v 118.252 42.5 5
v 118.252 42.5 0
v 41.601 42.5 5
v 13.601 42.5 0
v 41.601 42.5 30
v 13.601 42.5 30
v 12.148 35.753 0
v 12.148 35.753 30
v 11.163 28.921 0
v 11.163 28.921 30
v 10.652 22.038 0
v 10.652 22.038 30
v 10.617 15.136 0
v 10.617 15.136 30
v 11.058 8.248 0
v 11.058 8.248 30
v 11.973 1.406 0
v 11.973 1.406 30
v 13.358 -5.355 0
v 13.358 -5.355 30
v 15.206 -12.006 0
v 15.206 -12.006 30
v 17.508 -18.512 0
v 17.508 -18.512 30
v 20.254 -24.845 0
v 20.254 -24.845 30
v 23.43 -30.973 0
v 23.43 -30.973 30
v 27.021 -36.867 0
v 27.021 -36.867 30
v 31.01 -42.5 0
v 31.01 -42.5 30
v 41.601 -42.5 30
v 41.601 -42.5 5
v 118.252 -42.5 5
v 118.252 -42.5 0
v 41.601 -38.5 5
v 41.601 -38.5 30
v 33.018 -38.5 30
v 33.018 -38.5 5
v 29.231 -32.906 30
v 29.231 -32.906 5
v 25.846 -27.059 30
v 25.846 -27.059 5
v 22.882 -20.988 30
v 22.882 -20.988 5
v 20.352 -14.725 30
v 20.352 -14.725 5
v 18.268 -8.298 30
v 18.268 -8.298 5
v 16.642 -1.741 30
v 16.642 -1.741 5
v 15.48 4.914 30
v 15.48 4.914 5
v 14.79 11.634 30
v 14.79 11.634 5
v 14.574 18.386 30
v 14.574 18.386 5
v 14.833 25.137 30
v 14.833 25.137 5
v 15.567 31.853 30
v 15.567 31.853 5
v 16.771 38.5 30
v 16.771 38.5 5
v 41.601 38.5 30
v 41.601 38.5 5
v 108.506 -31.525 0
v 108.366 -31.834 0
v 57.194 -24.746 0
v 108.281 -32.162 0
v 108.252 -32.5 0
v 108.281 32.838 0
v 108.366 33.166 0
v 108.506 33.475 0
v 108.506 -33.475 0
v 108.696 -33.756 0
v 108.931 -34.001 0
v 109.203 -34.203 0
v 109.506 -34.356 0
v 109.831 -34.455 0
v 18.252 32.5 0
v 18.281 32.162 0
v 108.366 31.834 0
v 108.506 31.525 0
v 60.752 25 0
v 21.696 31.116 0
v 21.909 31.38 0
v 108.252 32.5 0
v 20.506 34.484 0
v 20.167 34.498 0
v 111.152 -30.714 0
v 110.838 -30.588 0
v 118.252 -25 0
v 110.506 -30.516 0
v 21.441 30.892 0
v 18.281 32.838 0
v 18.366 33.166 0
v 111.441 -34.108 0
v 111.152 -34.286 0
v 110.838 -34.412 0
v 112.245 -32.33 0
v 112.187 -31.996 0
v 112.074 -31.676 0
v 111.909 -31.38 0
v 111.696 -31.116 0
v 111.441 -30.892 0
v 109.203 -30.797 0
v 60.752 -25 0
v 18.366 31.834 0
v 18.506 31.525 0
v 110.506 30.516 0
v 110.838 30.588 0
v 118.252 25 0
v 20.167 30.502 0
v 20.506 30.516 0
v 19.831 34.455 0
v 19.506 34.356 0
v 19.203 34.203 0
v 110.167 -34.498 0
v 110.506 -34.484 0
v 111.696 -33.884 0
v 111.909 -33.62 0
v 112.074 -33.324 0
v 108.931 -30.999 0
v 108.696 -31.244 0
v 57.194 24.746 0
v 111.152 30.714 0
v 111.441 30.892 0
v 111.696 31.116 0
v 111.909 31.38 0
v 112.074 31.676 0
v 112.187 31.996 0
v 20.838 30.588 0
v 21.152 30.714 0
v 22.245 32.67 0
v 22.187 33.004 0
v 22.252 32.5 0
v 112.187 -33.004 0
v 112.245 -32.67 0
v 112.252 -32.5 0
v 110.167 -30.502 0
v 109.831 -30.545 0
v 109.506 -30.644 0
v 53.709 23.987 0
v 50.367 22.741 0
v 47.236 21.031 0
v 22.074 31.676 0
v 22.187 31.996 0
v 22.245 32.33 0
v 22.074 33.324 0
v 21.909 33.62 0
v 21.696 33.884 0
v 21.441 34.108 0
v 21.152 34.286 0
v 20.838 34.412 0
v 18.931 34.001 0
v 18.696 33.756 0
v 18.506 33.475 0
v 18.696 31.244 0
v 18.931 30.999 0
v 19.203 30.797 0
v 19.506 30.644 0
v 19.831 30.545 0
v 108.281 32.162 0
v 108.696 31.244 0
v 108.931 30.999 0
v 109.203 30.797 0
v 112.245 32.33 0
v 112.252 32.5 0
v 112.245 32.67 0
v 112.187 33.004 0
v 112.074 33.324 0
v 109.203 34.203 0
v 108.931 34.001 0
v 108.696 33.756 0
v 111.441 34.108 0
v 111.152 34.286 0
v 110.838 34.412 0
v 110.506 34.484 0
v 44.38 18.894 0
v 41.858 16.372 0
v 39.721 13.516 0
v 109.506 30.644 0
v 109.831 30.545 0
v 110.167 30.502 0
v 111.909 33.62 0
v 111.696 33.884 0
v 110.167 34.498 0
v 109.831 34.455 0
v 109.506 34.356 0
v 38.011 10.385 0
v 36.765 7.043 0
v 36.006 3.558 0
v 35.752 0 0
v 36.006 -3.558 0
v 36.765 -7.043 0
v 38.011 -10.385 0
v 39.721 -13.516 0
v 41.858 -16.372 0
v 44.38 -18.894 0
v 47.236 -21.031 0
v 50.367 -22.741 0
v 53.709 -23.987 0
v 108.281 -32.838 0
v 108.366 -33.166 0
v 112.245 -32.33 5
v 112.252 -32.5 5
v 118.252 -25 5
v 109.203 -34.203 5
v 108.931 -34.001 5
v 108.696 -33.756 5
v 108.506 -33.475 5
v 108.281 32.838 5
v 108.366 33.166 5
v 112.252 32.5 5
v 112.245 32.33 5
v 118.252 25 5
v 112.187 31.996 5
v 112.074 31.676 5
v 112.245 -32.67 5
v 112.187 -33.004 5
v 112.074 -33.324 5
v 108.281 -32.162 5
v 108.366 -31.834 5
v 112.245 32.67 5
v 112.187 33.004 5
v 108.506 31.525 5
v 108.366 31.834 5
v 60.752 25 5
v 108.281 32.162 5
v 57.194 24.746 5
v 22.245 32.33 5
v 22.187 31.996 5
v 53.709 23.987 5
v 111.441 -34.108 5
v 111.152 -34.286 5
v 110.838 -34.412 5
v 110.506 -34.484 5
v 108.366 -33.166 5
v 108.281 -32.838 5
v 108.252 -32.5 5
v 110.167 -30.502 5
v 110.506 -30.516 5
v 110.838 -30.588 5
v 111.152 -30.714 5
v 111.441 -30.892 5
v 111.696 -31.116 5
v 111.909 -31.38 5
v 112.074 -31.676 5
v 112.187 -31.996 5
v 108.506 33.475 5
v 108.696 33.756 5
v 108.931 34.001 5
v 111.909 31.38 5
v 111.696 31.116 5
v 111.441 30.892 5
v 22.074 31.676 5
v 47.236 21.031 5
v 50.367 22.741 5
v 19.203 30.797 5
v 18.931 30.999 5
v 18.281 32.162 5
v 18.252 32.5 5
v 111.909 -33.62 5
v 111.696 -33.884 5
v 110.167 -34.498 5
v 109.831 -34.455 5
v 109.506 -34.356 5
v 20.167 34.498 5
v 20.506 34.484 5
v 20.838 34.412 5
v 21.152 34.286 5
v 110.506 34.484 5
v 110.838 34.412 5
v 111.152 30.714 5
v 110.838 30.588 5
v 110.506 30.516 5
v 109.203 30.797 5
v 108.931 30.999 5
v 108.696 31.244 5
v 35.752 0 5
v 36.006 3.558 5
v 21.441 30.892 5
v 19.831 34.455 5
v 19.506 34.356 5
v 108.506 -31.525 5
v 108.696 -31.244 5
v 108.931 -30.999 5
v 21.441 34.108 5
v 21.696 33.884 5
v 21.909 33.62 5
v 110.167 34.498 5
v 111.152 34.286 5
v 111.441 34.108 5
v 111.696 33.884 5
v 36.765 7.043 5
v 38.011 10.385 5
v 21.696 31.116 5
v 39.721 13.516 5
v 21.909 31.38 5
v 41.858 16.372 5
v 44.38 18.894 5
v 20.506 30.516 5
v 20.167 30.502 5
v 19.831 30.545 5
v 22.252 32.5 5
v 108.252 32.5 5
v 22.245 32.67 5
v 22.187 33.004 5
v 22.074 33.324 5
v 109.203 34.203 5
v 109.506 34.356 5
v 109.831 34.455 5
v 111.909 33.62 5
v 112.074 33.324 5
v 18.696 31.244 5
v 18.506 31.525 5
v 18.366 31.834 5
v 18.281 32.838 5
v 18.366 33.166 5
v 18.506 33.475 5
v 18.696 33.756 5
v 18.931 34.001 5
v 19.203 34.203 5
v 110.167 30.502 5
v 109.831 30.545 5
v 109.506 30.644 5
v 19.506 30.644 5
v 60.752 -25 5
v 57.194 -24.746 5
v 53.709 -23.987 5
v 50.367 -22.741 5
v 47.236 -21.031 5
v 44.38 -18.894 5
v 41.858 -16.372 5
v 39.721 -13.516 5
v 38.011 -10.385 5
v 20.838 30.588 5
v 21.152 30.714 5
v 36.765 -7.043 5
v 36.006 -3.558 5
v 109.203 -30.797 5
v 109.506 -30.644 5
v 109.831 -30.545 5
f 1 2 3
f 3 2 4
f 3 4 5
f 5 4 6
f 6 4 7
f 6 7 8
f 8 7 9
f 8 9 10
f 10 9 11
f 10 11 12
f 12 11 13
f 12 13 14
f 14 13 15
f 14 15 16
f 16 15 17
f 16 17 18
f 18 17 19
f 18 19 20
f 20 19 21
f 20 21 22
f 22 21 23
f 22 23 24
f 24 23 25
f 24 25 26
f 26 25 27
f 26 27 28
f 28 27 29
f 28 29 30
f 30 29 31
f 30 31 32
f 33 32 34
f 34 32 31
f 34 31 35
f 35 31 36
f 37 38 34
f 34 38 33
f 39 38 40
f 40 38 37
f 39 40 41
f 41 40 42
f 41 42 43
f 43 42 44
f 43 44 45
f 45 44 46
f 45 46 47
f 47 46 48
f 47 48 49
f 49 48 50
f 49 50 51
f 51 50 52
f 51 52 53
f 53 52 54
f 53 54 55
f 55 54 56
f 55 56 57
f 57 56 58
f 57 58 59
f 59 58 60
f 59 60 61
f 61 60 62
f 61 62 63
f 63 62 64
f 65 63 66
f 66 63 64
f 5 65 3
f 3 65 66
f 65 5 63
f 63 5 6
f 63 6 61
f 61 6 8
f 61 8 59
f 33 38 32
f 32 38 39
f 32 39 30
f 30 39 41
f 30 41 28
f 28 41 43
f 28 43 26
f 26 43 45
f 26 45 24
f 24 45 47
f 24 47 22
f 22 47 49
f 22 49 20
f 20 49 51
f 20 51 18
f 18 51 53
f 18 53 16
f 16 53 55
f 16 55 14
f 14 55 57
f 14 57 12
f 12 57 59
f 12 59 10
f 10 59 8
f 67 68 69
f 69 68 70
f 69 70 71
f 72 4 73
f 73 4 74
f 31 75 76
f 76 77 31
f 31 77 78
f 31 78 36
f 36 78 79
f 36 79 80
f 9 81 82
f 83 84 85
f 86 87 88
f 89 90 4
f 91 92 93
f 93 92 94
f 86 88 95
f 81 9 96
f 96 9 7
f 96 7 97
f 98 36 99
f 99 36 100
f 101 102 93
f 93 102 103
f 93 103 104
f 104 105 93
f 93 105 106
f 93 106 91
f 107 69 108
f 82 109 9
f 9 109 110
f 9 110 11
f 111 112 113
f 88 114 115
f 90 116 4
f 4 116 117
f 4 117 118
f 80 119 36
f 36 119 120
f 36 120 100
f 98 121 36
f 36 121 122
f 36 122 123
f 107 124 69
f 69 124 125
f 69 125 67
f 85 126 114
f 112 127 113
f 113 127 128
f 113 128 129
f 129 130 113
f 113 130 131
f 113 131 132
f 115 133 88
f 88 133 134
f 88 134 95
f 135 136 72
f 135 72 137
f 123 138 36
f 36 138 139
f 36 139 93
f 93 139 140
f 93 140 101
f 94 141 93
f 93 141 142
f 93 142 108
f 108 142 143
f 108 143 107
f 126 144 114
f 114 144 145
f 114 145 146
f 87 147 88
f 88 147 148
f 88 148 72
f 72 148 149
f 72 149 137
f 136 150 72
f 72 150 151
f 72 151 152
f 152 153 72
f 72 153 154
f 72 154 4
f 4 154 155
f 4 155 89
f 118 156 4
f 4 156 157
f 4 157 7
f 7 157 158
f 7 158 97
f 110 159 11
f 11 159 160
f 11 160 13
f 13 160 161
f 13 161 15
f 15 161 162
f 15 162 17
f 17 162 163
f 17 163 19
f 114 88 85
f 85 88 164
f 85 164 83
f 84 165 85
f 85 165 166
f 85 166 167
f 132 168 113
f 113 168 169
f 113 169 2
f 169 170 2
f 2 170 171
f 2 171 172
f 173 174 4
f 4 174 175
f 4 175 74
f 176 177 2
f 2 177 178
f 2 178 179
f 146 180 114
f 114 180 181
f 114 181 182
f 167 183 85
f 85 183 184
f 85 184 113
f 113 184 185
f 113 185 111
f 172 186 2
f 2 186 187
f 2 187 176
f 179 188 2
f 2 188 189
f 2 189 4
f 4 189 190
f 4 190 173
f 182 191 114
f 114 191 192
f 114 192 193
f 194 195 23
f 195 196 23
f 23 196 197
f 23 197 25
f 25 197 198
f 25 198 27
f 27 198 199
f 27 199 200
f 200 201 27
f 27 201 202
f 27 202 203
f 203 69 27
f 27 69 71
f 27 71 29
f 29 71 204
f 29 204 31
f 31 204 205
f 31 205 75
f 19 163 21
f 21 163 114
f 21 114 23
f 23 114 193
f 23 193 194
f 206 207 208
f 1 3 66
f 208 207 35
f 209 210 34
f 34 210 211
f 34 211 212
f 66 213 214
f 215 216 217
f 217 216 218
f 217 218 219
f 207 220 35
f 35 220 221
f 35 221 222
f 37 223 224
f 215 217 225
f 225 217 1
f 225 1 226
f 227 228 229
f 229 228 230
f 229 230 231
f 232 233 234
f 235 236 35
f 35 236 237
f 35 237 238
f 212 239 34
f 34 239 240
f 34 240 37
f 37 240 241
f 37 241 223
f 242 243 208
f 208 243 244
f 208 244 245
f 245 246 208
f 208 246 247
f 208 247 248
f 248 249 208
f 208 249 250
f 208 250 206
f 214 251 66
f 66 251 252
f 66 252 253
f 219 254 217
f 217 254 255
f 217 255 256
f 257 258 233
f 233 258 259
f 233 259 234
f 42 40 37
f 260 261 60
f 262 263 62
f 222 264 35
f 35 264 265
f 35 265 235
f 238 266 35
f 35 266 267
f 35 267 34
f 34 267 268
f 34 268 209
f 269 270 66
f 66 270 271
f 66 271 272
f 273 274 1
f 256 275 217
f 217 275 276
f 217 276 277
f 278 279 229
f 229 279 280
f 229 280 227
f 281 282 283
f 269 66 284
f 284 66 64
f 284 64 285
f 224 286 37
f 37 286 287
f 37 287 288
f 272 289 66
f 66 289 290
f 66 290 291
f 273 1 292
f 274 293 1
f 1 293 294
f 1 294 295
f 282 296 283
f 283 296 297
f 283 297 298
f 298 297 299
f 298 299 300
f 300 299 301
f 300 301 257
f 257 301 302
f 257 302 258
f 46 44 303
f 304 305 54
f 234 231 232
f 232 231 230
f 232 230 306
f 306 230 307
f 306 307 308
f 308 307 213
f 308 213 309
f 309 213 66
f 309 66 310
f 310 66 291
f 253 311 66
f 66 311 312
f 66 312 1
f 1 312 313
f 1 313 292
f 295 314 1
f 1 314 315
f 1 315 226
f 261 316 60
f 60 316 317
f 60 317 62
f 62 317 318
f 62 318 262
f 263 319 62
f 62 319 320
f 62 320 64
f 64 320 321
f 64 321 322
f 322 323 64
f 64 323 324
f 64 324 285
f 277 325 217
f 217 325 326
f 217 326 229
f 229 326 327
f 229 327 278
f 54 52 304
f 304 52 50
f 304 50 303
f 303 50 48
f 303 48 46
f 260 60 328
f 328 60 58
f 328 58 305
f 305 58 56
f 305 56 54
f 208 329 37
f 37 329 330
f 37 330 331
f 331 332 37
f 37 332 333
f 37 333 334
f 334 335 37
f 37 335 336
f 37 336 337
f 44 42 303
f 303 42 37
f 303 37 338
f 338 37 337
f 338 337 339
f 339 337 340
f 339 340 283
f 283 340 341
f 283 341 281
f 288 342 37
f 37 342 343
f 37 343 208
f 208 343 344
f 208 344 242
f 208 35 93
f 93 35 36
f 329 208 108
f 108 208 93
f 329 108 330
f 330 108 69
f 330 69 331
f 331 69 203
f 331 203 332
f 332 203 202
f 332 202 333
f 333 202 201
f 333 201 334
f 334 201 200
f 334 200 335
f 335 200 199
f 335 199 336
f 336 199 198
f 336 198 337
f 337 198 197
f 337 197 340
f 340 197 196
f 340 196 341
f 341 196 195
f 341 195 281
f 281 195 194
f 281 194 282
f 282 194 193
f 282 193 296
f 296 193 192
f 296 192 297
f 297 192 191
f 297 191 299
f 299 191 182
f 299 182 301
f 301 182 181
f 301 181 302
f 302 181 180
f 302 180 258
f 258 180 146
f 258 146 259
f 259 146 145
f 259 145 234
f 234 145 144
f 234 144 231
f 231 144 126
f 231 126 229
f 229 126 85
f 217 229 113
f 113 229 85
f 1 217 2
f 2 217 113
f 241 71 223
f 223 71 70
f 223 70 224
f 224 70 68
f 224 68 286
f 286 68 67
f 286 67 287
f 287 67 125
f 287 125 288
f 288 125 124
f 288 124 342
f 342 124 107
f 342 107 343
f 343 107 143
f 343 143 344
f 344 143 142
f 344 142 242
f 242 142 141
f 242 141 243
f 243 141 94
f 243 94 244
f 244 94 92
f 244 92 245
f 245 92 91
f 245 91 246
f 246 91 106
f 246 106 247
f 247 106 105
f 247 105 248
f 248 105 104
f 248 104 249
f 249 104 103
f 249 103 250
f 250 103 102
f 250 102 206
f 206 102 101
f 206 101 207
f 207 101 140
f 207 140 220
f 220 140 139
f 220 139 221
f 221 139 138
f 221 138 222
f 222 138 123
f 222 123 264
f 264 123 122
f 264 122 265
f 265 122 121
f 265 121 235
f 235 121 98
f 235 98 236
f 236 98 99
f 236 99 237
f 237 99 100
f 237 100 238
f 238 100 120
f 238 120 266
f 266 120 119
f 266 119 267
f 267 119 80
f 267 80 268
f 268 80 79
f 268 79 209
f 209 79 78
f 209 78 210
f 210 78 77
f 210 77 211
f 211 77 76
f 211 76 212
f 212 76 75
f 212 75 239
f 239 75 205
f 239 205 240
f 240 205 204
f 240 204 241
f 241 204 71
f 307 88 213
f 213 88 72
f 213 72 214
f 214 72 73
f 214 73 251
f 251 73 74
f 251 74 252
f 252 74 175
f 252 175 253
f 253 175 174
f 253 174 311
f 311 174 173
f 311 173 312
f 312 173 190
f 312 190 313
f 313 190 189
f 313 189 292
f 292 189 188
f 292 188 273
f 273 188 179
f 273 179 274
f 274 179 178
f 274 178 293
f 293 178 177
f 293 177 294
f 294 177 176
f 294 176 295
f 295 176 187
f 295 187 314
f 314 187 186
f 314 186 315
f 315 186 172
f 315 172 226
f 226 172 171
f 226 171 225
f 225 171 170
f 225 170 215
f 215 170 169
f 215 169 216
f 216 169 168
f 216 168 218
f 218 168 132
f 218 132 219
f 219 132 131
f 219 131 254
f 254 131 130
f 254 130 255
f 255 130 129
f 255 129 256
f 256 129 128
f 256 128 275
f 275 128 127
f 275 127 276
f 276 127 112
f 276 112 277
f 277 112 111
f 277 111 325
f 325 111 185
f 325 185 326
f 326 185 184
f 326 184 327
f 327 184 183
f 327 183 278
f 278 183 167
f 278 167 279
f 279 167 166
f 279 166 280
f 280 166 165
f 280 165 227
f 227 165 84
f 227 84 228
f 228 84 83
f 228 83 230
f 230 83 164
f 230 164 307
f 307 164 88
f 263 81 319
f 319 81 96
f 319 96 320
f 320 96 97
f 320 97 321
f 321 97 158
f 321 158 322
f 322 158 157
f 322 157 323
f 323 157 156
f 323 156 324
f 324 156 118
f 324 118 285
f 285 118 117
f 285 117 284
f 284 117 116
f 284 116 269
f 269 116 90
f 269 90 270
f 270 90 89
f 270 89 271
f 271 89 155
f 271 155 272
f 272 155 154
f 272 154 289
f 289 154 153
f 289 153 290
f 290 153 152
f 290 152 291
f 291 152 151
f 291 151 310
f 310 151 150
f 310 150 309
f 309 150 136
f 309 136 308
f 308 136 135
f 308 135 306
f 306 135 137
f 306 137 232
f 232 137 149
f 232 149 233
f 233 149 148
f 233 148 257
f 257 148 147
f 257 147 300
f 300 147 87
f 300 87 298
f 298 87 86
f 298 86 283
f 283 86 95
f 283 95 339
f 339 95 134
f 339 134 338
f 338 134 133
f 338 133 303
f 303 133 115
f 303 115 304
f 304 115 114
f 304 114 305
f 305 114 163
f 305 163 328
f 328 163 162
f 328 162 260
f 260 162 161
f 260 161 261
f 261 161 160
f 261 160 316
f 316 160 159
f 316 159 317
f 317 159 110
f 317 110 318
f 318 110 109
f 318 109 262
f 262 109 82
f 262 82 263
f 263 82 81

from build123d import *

# Parameters (mm, degrees)
BOSS_EXTRUDE1_DEPTH = 30
SKETCH2_R           = 2
BOSS_EXTRUDE2_DEPTH = 5


with BuildPart() as part:
    # Sketch1 → Boss-Extrude1 (new body)
    with BuildSketch(Plane.XY):
        with BuildLine():
            Line((41.601208794, 42.5), (17.731571651, 42.5))
            ThreePointArc((17.731571651, 42.5), (17.229624056, 40.505148437), (16.770533771, 38.5))
            Line((16.770533771, 38.5), (41.601208794, 38.5))
            Line((41.601208794, 38.5), (41.601208794, 42.5))
        make_face()
        with BuildLine():
            ThreePointArc((13.601208794, 42.5), (12.606987208, -1.986459129), (31.010425159, -42.5))
            Line((31.010425159, -42.5), (36.100142994, -42.5))
            ThreePointArc((36.100142994, -42.5), (34.532590926, -40.520272198), (33.017651358, -38.5))
            ThreePointArc((33.017651358, -38.5), (25.832212825, -27.03194327), (20.330809065, -14.667421089))
            ThreePointArc((20.330809065, -14.667421089), (14.78782202, 11.664315982), (16.770533771, 38.5))
            ThreePointArc((16.770533771, 38.5), (17.229624056, 40.505148437), (17.731571651, 42.5))
            Line((17.731571651, 42.5), (13.601208794, 42.5))
        make_face()
        with BuildLine():
            ThreePointArc((33.017651358, -38.5), (34.532590926, -40.520272198), (36.100142994, -42.5))
            Line((36.100142994, -42.5), (41.601208794, -42.5))
            Line((41.601208794, -42.5), (41.601208794, -38.5))
            Line((41.601208794, -38.5), (33.017651358, -38.5))
        make_face()
    extrude(amount=BOSS_EXTRUDE1_DEPTH)

    # Sketch2 → Boss-Extrude2 (add)
    with BuildSketch(Plane.XY):
        with BuildLine():
            Line((118.251926796, 42.5), (41.601208794, 42.5))
            Line((41.601208794, 42.5), (41.601208794, 38.5))
            Line((41.601208794, 38.5), (16.770533771, 38.5))
            ThreePointArc((16.770533771, 38.5), (16.641534942, -1.741302261), (33.017651358, -38.5))
            Line((33.017651358, -38.5), (41.601208794, -38.5))
            Line((41.601208794, -38.5), (41.601208794, -42.5))
            Line((41.601208794, -42.5), (118.251926796, -42.5))
            Line((118.251926796, -42.5), (118.251926796, -32.5))
            Line((118.251926796, -32.5), (118.251926796, -25))
            Line((118.251926796, -25), (60.751926796, -25))
            ThreePointArc((60.751926796, -25), (35.751926796, 0), (60.751926796, 25))
            Line((60.751926796, 25), (118.251926796, 25))
            Line((118.251926796, 25), (118.251926796, 32.5))
            Line((118.251926796, 32.5), (118.251926796, 42.5))
        make_face()
        with Locations((110.251926796, -32.5)):
            Circle(SKETCH2_R, mode=Mode.SUBTRACT)
        with Locations((20.251926796, 32.5)):
            Circle(SKETCH2_R, mode=Mode.SUBTRACT)
        with Locations((110.251926796, 32.5)):
            Circle(SKETCH2_R, mode=Mode.SUBTRACT)
    extrude(amount=BOSS_EXTRUDE2_DEPTH)


solid = part.part
